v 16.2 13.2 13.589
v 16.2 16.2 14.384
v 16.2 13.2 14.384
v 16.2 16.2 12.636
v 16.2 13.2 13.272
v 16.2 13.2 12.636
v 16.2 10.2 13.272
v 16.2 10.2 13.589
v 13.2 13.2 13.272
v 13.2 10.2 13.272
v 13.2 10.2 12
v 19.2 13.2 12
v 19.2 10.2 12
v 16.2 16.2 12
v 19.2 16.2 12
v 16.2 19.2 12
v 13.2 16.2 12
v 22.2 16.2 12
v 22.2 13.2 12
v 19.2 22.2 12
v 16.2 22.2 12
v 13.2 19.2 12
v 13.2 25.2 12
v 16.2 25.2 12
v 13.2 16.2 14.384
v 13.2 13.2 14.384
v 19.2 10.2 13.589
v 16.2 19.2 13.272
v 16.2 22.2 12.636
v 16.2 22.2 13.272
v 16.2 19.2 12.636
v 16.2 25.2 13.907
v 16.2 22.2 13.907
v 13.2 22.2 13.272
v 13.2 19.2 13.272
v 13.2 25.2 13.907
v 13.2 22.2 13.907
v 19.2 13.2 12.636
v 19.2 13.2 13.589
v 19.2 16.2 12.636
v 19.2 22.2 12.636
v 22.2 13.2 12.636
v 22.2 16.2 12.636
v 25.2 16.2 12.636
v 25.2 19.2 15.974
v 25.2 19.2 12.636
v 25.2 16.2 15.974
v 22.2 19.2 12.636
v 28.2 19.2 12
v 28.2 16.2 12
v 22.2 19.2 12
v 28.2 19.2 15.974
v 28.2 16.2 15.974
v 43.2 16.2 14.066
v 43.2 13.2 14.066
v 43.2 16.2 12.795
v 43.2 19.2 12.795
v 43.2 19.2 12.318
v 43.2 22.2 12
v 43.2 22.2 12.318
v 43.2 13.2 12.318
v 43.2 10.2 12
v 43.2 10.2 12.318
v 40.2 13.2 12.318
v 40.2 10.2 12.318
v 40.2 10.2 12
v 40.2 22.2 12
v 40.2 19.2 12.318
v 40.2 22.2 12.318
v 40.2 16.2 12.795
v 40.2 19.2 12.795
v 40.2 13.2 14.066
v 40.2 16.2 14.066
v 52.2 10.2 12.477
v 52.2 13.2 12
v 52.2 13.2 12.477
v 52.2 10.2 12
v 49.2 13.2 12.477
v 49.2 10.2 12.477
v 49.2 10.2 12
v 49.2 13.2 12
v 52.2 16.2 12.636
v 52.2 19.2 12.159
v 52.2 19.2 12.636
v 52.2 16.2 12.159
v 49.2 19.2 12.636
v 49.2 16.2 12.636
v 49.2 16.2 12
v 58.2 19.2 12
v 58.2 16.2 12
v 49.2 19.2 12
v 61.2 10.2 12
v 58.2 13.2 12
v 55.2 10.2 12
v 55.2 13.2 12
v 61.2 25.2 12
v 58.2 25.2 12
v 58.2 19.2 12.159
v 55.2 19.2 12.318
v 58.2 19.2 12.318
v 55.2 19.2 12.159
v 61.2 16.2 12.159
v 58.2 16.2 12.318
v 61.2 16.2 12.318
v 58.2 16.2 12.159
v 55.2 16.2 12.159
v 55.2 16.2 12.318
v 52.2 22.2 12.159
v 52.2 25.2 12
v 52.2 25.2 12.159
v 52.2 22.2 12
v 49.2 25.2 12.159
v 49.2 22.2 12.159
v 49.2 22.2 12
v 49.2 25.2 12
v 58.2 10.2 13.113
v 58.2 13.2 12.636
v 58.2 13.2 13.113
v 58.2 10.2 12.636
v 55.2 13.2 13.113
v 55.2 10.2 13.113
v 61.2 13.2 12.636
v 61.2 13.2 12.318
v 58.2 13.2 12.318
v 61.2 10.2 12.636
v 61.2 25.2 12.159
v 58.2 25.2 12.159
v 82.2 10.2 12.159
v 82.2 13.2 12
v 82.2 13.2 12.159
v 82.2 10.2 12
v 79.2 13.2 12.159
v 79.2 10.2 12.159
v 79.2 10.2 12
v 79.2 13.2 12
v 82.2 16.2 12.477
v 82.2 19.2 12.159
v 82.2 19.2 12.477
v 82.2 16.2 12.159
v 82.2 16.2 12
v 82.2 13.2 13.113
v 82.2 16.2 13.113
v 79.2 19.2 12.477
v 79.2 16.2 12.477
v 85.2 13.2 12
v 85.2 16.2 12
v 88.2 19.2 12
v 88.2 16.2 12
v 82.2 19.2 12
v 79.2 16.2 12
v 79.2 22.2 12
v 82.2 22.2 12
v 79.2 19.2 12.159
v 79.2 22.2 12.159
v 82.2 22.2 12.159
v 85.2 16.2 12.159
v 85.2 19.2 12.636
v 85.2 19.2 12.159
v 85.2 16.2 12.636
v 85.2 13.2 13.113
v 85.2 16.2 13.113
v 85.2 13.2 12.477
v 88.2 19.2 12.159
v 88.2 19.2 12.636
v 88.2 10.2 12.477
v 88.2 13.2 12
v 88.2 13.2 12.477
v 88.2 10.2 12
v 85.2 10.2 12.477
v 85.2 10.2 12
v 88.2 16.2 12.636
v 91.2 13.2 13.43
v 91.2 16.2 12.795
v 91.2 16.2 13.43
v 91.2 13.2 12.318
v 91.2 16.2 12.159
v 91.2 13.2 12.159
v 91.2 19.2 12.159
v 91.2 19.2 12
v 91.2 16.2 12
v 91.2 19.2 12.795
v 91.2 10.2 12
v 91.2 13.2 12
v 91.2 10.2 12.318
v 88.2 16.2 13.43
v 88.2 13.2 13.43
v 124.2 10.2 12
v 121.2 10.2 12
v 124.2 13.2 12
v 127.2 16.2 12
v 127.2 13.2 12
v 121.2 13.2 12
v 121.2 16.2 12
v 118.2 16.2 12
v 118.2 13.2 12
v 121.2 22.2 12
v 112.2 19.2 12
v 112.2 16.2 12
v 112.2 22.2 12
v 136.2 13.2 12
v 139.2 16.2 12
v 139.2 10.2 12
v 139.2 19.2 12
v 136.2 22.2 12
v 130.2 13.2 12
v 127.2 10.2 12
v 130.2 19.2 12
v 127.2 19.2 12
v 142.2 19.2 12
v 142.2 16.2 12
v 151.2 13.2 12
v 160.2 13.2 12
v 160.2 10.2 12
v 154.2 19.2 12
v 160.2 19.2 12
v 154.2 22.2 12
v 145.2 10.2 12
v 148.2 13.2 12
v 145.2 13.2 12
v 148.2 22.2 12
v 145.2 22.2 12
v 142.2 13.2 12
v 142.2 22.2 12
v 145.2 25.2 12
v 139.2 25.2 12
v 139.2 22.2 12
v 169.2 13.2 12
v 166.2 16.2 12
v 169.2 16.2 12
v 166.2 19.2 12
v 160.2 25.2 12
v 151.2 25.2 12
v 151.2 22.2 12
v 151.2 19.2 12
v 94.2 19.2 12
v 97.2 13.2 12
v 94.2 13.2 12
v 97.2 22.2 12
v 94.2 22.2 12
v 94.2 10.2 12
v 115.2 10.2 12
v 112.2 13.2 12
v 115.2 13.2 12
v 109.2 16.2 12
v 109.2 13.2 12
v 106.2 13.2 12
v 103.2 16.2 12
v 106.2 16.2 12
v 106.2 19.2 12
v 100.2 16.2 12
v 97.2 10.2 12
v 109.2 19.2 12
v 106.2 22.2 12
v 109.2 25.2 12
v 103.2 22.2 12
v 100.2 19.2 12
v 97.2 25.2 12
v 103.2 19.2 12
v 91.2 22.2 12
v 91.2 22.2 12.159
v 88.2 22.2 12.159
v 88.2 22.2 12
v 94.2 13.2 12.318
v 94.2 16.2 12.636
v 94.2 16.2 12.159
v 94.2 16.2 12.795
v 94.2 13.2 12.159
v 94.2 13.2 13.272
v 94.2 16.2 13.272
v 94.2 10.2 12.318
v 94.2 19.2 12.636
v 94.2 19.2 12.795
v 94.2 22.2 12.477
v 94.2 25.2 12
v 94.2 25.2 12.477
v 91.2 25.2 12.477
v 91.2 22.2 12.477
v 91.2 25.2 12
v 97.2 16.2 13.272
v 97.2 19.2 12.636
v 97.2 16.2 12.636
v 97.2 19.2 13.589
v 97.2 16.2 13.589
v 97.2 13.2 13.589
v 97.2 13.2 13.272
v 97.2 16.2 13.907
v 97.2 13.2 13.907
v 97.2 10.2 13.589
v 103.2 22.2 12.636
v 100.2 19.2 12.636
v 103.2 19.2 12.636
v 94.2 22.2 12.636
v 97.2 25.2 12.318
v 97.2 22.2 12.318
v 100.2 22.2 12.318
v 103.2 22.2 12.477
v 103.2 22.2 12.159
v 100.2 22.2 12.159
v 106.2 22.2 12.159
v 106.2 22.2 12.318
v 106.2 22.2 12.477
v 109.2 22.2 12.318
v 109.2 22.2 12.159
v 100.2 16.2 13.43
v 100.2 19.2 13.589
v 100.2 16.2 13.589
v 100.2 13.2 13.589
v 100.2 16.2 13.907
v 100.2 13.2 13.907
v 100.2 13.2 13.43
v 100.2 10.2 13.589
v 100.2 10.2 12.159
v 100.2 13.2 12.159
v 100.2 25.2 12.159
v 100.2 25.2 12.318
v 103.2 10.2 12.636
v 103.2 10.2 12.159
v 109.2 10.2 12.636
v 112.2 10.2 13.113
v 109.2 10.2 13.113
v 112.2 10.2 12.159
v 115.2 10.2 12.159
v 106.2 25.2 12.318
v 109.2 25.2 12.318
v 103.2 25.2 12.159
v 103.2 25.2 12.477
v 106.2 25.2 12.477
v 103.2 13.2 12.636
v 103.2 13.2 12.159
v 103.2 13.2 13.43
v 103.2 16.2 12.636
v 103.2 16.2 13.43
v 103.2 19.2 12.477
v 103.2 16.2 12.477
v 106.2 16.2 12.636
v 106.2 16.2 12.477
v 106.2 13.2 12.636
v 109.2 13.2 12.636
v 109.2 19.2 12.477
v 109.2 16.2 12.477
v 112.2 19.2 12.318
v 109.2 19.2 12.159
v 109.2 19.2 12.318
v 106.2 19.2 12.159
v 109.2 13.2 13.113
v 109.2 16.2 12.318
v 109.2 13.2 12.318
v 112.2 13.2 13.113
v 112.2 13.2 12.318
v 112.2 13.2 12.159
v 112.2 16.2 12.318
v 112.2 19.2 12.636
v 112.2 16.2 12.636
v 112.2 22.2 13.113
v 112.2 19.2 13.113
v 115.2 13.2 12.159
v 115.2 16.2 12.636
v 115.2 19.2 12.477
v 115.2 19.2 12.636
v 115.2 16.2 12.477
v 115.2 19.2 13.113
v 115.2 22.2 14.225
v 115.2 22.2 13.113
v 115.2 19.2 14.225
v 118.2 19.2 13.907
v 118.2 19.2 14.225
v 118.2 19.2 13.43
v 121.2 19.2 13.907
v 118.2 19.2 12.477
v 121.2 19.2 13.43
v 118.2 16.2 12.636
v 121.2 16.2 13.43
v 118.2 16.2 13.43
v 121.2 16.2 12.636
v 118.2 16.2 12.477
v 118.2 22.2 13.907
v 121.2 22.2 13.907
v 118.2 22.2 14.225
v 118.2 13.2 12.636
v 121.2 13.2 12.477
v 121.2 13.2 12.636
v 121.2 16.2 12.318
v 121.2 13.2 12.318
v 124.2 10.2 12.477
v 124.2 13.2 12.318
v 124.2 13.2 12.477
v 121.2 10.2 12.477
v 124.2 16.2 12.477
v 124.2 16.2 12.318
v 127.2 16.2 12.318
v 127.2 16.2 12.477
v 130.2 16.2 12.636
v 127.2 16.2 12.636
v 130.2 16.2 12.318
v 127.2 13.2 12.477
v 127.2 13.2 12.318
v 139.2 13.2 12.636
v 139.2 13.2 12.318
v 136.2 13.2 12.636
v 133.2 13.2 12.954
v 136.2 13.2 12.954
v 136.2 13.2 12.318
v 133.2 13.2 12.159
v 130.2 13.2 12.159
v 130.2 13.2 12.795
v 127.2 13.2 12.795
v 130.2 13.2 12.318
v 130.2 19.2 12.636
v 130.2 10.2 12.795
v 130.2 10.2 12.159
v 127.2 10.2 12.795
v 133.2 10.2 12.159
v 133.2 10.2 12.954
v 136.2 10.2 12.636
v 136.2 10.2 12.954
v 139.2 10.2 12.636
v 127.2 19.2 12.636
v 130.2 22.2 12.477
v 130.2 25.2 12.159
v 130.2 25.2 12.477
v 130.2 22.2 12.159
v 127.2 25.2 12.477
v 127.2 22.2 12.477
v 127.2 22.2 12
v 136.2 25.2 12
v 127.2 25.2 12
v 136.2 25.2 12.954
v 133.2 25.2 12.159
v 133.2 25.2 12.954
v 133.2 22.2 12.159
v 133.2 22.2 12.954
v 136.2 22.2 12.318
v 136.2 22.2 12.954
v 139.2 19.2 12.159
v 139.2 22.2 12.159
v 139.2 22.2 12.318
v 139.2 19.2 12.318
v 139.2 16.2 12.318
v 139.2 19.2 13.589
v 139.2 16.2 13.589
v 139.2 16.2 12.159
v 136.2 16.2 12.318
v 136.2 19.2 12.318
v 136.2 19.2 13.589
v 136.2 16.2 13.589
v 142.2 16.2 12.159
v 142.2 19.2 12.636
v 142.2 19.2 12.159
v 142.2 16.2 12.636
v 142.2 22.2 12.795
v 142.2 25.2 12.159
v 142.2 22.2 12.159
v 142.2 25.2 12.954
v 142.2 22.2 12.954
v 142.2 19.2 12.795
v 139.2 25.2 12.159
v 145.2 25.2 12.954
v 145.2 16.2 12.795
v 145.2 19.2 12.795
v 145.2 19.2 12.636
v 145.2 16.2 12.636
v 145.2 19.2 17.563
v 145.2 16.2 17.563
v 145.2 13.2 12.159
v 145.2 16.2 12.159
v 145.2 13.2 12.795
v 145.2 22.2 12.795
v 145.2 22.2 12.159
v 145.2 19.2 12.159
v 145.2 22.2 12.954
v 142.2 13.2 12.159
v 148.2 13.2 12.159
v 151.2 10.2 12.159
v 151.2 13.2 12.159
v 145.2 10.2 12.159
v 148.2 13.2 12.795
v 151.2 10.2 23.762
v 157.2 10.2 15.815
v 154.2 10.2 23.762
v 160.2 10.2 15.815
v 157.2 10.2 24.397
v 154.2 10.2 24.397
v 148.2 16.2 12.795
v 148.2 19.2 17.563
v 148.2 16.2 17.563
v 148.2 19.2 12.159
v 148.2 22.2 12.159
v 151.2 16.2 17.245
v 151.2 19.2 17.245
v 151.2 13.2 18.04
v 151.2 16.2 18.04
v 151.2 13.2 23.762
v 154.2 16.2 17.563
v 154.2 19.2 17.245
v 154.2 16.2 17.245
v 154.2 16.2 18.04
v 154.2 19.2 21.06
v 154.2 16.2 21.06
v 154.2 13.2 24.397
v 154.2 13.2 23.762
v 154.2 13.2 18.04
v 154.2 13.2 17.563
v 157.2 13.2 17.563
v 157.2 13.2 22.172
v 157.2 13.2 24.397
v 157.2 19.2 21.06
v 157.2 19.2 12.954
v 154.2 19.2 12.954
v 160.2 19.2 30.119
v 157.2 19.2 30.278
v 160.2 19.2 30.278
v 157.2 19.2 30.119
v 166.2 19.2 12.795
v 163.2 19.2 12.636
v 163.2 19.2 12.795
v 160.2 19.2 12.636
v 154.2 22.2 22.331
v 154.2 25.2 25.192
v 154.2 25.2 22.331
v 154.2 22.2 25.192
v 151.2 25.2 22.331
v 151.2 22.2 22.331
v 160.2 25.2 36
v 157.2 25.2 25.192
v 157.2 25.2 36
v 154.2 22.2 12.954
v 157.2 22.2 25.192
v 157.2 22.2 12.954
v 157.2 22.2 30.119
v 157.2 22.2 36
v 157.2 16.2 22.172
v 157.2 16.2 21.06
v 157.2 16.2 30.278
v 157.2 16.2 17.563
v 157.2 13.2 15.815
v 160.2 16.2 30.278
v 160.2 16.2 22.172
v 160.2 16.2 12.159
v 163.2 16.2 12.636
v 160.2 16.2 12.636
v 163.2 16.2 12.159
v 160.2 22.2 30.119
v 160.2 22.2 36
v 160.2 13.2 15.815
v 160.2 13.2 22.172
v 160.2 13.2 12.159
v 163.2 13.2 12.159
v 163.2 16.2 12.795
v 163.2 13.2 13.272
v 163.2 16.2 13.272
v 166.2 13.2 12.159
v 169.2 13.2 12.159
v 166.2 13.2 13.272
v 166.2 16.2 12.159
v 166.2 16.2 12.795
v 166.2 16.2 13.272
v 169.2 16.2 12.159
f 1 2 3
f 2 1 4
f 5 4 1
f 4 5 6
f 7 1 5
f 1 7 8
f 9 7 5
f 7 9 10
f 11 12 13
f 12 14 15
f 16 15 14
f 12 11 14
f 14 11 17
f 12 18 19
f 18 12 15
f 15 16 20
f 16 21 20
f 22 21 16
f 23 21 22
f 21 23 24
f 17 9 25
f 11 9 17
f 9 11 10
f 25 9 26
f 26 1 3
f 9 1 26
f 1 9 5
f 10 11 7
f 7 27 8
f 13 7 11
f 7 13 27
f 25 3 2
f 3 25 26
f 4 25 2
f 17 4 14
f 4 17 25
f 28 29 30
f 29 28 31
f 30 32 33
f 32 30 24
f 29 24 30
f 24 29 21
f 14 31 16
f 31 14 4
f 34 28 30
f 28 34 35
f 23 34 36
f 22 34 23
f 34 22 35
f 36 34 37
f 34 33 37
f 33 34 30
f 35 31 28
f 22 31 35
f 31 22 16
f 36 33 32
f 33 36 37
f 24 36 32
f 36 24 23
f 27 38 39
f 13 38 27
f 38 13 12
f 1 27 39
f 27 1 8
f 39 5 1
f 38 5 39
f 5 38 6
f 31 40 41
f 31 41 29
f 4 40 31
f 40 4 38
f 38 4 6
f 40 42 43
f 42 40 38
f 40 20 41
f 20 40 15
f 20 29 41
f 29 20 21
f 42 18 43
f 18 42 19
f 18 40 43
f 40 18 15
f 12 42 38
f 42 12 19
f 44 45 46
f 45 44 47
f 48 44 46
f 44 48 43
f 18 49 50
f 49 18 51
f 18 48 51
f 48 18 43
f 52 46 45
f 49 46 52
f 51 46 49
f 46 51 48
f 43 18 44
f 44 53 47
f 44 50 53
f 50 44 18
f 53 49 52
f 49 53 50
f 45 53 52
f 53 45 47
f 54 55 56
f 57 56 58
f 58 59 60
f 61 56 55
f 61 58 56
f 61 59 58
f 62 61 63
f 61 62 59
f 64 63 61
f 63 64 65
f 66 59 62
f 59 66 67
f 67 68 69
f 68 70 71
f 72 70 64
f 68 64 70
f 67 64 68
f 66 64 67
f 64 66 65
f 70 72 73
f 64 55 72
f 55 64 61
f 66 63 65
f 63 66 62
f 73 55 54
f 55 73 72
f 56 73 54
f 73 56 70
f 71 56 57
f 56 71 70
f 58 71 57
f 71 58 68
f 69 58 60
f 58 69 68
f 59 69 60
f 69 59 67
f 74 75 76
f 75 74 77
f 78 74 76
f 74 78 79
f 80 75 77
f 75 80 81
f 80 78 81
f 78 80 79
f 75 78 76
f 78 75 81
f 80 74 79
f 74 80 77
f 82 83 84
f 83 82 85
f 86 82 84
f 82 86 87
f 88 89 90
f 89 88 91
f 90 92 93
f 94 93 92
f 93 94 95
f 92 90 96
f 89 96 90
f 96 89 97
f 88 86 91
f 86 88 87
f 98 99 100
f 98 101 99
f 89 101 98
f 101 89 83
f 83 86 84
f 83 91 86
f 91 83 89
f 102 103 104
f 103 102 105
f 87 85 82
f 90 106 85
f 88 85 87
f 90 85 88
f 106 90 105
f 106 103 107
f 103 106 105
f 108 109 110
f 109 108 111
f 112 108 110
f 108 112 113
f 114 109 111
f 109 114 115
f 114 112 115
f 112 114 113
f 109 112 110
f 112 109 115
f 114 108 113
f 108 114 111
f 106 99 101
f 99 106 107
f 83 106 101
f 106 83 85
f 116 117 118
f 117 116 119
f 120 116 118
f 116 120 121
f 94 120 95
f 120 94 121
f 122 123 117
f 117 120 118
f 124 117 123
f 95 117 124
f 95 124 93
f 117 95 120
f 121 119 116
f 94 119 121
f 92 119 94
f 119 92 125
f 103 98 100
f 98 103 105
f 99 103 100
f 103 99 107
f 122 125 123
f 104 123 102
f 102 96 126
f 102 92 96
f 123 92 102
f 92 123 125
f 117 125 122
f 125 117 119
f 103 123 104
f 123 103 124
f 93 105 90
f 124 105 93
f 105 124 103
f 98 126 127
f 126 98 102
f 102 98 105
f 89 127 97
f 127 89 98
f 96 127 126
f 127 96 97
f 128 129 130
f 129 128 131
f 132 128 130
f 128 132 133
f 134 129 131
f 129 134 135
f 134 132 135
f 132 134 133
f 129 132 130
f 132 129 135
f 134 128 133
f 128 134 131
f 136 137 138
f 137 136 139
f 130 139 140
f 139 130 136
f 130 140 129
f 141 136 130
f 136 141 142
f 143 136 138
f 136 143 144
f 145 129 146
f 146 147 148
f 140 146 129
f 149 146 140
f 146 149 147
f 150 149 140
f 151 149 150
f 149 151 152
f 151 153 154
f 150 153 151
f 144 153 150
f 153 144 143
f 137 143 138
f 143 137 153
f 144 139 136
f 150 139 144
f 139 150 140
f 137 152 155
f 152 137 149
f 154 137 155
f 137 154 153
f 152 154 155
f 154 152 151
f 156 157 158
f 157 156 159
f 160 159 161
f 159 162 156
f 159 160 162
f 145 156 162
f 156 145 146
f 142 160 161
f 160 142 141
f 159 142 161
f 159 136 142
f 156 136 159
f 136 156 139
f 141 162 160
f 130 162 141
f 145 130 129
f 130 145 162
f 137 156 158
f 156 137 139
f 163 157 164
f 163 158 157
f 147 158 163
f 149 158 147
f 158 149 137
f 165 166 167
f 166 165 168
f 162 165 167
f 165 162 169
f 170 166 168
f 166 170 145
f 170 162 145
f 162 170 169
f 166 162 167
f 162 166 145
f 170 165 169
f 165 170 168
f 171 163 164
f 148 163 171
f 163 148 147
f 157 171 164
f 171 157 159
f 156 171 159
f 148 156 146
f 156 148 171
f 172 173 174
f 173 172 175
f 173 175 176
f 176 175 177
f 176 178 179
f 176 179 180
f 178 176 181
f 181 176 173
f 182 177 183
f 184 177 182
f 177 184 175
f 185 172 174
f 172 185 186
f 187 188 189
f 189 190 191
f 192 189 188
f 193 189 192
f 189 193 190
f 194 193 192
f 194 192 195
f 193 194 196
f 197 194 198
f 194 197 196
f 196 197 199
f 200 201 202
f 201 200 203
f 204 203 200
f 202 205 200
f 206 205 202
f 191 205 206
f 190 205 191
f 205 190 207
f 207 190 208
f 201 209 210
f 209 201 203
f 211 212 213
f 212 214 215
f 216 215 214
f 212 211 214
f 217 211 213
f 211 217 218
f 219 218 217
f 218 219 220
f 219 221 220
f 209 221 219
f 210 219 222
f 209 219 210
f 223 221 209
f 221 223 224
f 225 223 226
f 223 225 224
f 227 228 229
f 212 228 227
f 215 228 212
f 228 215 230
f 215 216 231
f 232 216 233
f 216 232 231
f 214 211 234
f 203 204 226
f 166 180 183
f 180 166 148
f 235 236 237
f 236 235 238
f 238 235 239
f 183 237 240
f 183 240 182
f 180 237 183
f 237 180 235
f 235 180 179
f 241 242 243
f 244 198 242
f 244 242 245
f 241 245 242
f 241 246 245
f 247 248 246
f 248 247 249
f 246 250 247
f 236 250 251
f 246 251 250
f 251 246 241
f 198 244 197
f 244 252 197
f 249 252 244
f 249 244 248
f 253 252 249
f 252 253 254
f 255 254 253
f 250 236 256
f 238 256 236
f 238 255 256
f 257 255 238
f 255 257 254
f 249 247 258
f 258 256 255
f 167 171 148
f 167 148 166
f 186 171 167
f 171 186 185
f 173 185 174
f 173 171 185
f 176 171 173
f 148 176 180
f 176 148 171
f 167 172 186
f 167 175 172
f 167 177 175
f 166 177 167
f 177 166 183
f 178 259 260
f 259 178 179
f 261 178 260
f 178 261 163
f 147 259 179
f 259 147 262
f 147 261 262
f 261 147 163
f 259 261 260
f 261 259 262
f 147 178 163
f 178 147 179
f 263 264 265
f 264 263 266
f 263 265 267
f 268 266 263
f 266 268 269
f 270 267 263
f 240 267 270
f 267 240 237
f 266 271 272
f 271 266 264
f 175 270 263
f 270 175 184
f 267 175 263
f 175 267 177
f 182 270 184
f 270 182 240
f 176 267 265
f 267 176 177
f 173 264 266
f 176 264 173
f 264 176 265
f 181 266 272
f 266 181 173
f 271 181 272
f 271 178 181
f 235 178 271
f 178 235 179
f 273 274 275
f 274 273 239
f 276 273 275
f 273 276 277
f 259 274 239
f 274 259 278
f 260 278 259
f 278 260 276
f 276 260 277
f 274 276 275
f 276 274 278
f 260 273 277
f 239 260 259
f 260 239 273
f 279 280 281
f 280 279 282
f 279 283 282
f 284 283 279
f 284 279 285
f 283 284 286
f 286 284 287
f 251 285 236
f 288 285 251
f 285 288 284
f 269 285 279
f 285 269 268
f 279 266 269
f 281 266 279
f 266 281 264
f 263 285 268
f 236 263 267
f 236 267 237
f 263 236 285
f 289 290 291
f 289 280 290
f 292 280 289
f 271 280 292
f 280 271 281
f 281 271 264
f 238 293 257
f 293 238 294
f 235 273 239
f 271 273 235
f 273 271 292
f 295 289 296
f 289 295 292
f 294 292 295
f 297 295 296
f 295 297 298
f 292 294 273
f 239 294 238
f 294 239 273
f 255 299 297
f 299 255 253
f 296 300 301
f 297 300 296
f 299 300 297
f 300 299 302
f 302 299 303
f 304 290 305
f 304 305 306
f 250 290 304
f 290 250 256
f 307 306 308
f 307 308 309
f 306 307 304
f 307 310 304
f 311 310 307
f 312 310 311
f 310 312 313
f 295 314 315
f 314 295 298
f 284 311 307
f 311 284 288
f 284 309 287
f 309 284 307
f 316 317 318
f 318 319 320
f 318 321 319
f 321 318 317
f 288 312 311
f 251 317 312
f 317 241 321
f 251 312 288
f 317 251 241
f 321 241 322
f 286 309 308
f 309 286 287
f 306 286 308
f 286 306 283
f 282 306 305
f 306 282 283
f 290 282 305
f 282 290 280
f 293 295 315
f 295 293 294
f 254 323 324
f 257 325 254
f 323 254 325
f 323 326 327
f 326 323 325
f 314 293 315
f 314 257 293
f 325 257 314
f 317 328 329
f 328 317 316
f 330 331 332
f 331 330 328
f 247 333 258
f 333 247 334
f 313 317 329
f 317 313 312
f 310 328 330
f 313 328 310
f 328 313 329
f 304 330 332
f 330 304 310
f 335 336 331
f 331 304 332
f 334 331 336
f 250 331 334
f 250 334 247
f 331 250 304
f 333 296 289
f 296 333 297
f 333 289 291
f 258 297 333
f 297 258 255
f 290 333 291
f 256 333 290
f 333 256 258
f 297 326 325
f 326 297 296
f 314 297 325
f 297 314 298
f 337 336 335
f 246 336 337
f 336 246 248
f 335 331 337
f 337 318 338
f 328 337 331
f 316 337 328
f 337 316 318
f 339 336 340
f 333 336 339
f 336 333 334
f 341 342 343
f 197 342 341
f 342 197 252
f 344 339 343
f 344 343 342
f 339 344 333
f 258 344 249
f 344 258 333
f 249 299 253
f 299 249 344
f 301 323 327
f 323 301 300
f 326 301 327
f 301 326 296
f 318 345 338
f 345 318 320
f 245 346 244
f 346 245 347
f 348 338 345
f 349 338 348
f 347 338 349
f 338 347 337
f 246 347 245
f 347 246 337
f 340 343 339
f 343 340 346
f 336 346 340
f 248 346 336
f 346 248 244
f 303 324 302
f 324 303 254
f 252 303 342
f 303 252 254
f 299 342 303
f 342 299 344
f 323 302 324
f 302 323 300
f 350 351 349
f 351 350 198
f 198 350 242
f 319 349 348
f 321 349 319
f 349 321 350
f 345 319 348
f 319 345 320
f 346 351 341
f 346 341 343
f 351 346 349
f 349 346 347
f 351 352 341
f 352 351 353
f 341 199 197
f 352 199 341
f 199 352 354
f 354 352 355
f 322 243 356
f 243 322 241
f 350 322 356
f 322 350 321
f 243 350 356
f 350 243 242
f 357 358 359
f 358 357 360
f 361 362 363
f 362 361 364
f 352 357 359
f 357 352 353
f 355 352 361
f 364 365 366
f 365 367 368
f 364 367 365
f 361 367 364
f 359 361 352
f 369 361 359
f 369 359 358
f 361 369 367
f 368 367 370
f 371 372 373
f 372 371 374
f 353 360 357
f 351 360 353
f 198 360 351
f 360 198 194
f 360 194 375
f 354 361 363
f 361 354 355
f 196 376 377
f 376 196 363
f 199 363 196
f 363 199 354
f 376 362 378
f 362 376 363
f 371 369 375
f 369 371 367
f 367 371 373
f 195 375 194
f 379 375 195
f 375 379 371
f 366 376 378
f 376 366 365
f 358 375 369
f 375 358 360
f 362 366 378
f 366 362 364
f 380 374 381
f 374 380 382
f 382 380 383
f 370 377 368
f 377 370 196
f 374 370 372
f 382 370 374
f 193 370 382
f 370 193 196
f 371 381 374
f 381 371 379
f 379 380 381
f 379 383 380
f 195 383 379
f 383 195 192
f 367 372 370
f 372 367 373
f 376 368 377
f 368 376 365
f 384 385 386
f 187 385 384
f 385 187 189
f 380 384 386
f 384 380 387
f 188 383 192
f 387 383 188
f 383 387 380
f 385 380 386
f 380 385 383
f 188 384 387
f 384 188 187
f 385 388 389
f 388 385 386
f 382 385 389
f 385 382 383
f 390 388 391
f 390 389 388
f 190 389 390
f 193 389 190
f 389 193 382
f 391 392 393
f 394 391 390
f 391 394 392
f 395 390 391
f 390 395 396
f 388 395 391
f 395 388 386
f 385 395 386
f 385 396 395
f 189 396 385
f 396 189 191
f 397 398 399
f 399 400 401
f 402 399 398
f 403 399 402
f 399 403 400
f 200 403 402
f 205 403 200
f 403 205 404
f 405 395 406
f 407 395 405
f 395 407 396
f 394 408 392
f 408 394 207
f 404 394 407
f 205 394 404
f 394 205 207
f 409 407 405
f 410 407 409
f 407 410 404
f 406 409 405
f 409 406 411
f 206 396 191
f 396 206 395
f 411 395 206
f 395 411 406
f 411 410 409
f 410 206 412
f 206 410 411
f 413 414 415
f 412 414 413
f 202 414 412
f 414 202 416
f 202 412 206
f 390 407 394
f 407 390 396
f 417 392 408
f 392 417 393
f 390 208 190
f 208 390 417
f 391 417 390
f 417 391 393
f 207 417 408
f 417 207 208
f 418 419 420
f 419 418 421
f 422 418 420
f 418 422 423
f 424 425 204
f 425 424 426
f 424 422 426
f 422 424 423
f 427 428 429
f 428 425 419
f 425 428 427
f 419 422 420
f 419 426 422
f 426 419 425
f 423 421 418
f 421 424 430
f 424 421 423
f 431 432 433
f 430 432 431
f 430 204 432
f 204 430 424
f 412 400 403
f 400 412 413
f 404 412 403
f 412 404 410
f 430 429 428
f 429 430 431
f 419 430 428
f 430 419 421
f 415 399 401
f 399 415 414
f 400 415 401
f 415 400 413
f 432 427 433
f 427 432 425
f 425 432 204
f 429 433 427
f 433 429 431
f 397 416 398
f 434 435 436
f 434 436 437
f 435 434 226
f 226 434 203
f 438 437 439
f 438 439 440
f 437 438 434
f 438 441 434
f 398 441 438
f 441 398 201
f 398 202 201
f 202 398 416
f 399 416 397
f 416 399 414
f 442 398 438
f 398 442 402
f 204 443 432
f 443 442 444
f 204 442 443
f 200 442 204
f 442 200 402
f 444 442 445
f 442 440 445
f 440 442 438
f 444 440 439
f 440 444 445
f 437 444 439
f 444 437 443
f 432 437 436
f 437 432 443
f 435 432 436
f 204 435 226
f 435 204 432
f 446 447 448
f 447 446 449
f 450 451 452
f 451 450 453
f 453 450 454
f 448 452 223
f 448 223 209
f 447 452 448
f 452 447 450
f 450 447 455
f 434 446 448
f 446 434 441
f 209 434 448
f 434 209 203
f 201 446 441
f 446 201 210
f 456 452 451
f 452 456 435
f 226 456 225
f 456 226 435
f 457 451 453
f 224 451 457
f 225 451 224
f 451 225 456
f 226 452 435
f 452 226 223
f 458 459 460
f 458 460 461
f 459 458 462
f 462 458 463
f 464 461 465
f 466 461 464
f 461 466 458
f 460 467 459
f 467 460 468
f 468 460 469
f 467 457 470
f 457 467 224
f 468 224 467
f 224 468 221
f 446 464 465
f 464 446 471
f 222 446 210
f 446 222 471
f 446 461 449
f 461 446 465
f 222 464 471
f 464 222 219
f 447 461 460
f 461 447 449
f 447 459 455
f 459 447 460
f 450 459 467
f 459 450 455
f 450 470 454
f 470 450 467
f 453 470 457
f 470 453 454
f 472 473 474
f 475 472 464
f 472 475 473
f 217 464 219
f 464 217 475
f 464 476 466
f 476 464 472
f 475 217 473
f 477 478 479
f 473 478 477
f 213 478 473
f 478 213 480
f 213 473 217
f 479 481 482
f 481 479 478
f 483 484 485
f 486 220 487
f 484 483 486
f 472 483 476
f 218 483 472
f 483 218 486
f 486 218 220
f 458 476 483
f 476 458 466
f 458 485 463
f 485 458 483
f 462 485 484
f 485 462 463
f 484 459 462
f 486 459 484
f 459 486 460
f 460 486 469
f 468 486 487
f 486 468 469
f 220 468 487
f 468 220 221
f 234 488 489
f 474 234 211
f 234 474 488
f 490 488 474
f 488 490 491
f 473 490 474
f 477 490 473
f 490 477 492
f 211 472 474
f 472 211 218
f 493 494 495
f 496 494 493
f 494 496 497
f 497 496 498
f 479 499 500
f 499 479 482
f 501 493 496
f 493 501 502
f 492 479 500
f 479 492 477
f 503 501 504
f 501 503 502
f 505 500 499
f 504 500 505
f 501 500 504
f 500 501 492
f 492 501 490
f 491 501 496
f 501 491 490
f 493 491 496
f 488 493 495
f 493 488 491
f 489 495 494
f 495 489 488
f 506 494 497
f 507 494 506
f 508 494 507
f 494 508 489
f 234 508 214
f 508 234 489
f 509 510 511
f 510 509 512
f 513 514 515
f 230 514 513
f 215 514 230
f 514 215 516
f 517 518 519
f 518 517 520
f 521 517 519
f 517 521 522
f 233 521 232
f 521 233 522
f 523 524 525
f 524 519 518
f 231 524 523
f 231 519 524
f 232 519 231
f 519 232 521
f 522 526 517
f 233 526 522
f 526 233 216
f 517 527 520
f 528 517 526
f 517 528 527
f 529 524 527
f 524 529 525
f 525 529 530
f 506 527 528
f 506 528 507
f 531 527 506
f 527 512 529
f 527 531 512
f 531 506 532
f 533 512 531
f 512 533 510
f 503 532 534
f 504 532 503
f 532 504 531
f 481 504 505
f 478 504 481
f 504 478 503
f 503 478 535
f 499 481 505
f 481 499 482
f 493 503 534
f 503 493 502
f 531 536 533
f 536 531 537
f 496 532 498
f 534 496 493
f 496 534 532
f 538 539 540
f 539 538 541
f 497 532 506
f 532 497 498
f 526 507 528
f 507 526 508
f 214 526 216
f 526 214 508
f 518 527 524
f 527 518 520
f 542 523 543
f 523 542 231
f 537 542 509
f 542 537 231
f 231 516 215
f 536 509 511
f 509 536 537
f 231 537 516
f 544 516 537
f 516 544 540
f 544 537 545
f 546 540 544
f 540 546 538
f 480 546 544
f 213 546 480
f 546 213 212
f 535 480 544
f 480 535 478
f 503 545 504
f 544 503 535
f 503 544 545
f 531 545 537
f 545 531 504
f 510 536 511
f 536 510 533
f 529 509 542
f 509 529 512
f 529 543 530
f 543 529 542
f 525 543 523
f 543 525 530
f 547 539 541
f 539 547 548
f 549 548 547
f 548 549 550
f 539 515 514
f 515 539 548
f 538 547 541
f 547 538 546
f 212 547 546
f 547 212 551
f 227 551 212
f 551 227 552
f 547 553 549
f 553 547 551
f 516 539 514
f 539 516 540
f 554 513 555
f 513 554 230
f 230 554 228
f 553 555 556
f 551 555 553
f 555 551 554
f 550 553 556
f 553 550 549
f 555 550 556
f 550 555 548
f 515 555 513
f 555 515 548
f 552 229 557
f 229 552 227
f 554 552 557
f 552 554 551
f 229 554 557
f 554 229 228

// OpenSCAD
union() {
	translate(v = [13.200000000000001, 10.200000000000001, 12.0]) {
		cube(size = [3.0, 3.0, 1.271523178807947]);
	}
	translate(v = [13.200000000000001, 13.200000000000001, 12.0]) {
		cube(size = [3.0, 3.0, 2.384105960264901]);
	}
	translate(v = [13.200000000000001, 19.200000000000003, 12.0]) {
		cube(size = [3.0, 3.0, 1.271523178807947]);
	}
	translate(v = [13.200000000000001, 22.200000000000003, 12.0]) {
		cube(size = [3.0, 3.0, 1.9072847682119205]);
	}
	translate(v = [16.200000000000003, 10.200000000000001, 12.0]) {
		cube(size = [3.0, 3.0, 1.5894039735099337]);
	}
	translate(v = [16.200000000000003, 13.200000000000001, 12.0]) {
		cube(size = [3.0, 3.0, 0.6357615894039735]);
	}
	translate(v = [16.200000000000003, 16.200000000000003, 12.0]) {
		cube(size = [3.0, 3.0, 0.6357615894039735]);
	}
	translate(v = [16.200000000000003, 19.200000000000003, 12.0]) {
		cube(size = [3.0, 3.0, 0.6357615894039735]);
	}
	translate(v = [19.200000000000003, 13.200000000000001, 12.0]) {
		cube(size = [3.0, 3.0, 0.6357615894039735]);
	}
	translate(v = [22.200000000000003, 16.200000000000003, 12.0]) {
		cube(size = [3.0, 3.0, 0.6357615894039735]);
	}
	translate(v = [25.200000000000003, 16.200000000000003, 12.0]) {
		cube(size = [3.0, 3.0, 3.9735099337748343]);
	}
	translate(v = [40.2, 10.200000000000001, 12.0]) {
		cube(size = [3.0, 3.0, 0.31788079470198677]);
	}
	translate(v = [40.2, 13.200000000000001, 12.0]) {
		cube(size = [3.0, 3.0, 2.066225165562914]);
	}
	translate(v = [40.2, 16.200000000000003, 12.0]) {
		cube(size = [3.0, 3.0, 0.7947019867549668]);
	}
	translate(v = [40.2, 19.200000000000003, 12.0]) {
		cube(size = [3.0, 3.0, 0.31788079470198677]);
	}
	translate(v = [49.2, 10.200000000000001, 12.0]) {
		cube(size = [3.0, 3.0, 0.4768211920529801]);
	}
	translate(v = [49.2, 16.200000000000003, 12.0]) {
		cube(size = [3.0, 3.0, 0.6357615894039735]);
	}
	translate(v = [49.2, 22.200000000000003, 12.0]) {
		cube(size = [3.0, 3.0, 0.15894039735099338]);
	}
	translate(v = [52.2, 16.200000000000003, 12.0]) {
		cube(size = [3.0, 3.0, 0.15894039735099338]);
	}
	translate(v = [55.2, 10.200000000000001, 12.0]) {
		cube(size = [3.0, 3.0, 1.1125827814569536]);
	}
	translate(v = [55.2, 16.200000000000003, 12.0]) {
		cube(size = [3.0, 3.0, 0.31788079470198677]);
	}
	translate(v = [58.2, 10.200000000000001, 12.0]) {
		cube(size = [3.0, 3.0, 0.6357615894039735]);
	}
	translate(v = [58.2, 13.200000000000001, 12.0]) {
		cube(size = [3.0, 3.0, 0.31788079470198677]);
	}
	translate(v = [58.2, 16.200000000000003, 12.0]) {
		cube(size = [3.0, 3.0, 0.15894039735099338]);
	}
	translate(v = [58.2, 19.200000000000003, 12.0]) {
		cube(size = [3.0, 3.0, 0.15894039735099338]);
	}
	translate(v = [58.2, 22.200000000000003, 12.0]) {
		cube(size = [3.0, 3.0, 0.15894039735099338]);
	}
	translate(v = [79.2, 10.200000000000001, 12.0]) {
		cube(size = [3.0, 3.0, 0.15894039735099338]);
	}
	translate(v = [79.2, 16.200000000000003, 12.0]) {
		cube(size = [3.0, 3.0, 0.4768211920529801]);
	}
	translate(v = [79.2, 19.200000000000003, 12.0]) {
		cube(size = [3.0, 3.0, 0.15894039735099338]);
	}
	translate(v = [82.2, 13.200000000000001, 12.0]) {
		cube(size = [3.0, 3.0, 1.1125827814569536]);
	}
	translate(v = [82.2, 16.200000000000003, 12.0]) {
		cube(size = [3.0, 3.0, 0.15894039735099338]);
	}
	translate(v = [85.2, 10.200000000000001, 12.0]) {
		cube(size = [3.0, 3.0, 0.4768211920529801]);
	}
	translate(v = [85.2, 16.200000000000003, 12.0]) {
		cube(size = [3.0, 3.0, 0.6357615894039735]);
	}
	translate(v = [88.2, 13.200000000000001, 12.0]) {
		cube(size = [3.0, 3.0, 1.4304635761589404]);
	}
	translate(v = [88.2, 19.200000000000003, 12.0]) {
		cube(size = [3.0, 3.0, 0.15894039735099338]);
	}
	translate(v = [91.2, 10.200000000000001, 12.0]) {
		cube(size = [3.0, 3.0, 0.31788079470198677]);
	}
	translate(v = [91.2, 13.200000000000001, 12.0]) {
		cube(size = [3.0, 3.0, 0.15894039735099338]);
	}
	translate(v = [91.2, 16.200000000000003, 12.0]) {
		cube(size = [3.0, 3.0, 0.7947019867549668]);
	}
	translate(v = [91.2, 22.200000000000003, 12.0]) {
		cube(size = [3.0, 3.0, 0.4768211920529801]);
	}
	translate(v = [94.2, 13.200000000000001, 12.0]) {
		cube(size = [3.0, 3.0, 1.271523178807947]);
	}
	translate(v = [94.2, 16.200000000000003, 12.0]) {
		cube(size = [3.0, 3.0, 0.6357615894039735]);
	}
	translate(v = [94.2, 19.200000000000003, 12.0]) {
		cube(size = [3.0, 3.0, 0.6357615894039735]);
	}
	translate(v = [97.2, 10.200000000000001, 12.0]) {
		cube(size = [3.0, 3.0, 1.5894039735099337]);
	}
	translate(v = [97.2, 13.200000000000001, 12.0]) {
		cube(size = [3.0, 3.0, 1.9072847682119205]);
	}
	translate(v = [97.2, 16.200000000000003, 12.0]) {
		cube(size = [3.0, 3.0, 1.5894039735099337]);
	}
	translate(v = [97.2, 19.200000000000003, 12.0]) {
		cube(size = [3.0, 3.0, 0.6357615894039735]);
	}
	translate(v = [97.2, 22.200000000000003, 12.0]) {
		cube(size = [3.0, 3.0, 0.31788079470198677]);
	}
	translate(v = [100.2, 10.200000000000001, 12.0]) {
		cube(size = [3.0, 3.0, 0.15894039735099338]);
	}
	translate(v = [100.2, 13.200000000000001, 12.0]) {
		cube(size = [3.0, 3.0, 1.4304635761589404]);
	}
	translate(v = [100.2, 19.200000000000003, 12.0]) {
		cube(size = [3.0, 3.0, 0.6357615894039735]);
	}
	translate(v = [100.2, 22.200000000000003, 12.0]) {
		cube(size = [3.0, 3.0, 0.15894039735099338]);
	}
	translate(v = [103.2, 10.200000000000001, 12.0]) {
		cube(size = [3.0, 3.0, 0.6357615894039735]);
	}
	translate(v = [103.2, 13.200000000000001, 12.0]) {
		cube(size = [3.0, 3.0, 0.6357615894039735]);
	}
	translate(v = [103.2, 16.200000000000003, 12.0]) {
		cube(size = [3.0, 3.0, 0.4768211920529801]);
	}
	translate(v = [103.2, 22.200000000000003, 12.0]) {
		cube(size = [3.0, 3.0, 0.4768211920529801]);
	}
	translate(v = [106.2, 10.200000000000001, 12.0]) {
		cube(size = [3.0, 3.0, 0.6357615894039735]);
	}
	translate(v = [106.2, 16.200000000000003, 12.0]) {
		cube(size = [3.0, 3.0, 0.4768211920529801]);
	}
	translate(v = [106.2, 19.200000000000003, 12.0]) {
		cube(size = [3.0, 3.0, 0.15894039735099338]);
	}
	translate(v = [106.2, 22.200000000000003, 12.0]) {
		cube(size = [3.0, 3.0, 0.31788079470198677]);
	}
	translate(v = [109.2, 10.200000000000001, 12.0]) {
		cube(size = [3.0, 3.0, 1.1125827814569536]);
	}
	translate(v = [109.2, 13.200000000000001, 12.0]) {
		cube(size = [3.0, 3.0, 0.31788079470198677]);
	}
	translate(v = [109.2, 16.200000000000003, 12.0]) {
		cube(size = [3.0, 3.0, 0.31788079470198677]);
	}
	translate(v = [112.2, 10.200000000000001, 12.0]) {
		cube(size = [3.0, 3.0, 0.15894039735099338]);
	}
	translate(v = [112.2, 16.200000000000003, 12.0]) {
		cube(size = [3.0, 3.0, 0.6357615894039735]);
	}
	translate(v = [112.2, 19.200000000000003, 12.0]) {
		cube(size = [3.0, 3.0, 1.1125827814569536]);
	}
	translate(v = [115.2, 16.200000000000003, 12.0]) {
		cube(size = [3.0, 3.0, 0.4768211920529801]);
	}
	translate(v = [115.2, 19.200000000000003, 12.0]) {
		cube(size = [3.0, 3.0, 2.225165562913907]);
	}
	translate(v = [118.2, 13.200000000000001, 12.0]) {
		cube(size = [3.0, 3.0, 0.6357615894039735]);
	}
	translate(v = [118.2, 16.200000000000003, 12.0]) {
		cube(size = [3.0, 3.0, 1.4304635761589404]);
	}
	translate(v = [118.2, 19.200000000000003, 12.0]) {
		cube(size = [3.0, 3.0, 1.9072847682119205]);
	}
	translate(v = [121.2, 10.200000000000001, 12.0]) {
		cube(size = [3.0, 3.0, 0.4768211920529801]);
	}
	translate(v = [121.2, 13.200000000000001, 12.0]) {
		cube(size = [3.0, 3.0, 0.31788079470198677]);
	}
	translate(v = [124.2, 13.200000000000001, 12.0]) {
		cube(size = [3.0, 3.0, 0.4768211920529801]);
	}
	translate(v = [127.2, 10.200000000000001, 12.0]) {
		cube(size = [3.0, 3.0, 0.7947019867549668]);
	}
	translate(v = [127.2, 13.200000000000001, 12.0]) {
		cube(size = [3.0, 3.0, 0.31788079470198677]);
	}
	translate(v = [127.2, 16.200000000000003, 12.0]) {
		cube(size = [3.0, 3.0, 0.6357615894039735]);
	}
	translate(v = [127.2, 22.200000000000003, 12.0]) {
		cube(size = [3.0, 3.0, 0.4768211920529801]);
	}
	translate(v = [130.2, 10.200000000000001, 12.0]) {
		cube(size = [3.0, 3.0, 0.15894039735099338]);
	}
	translate(v = [130.2, 22.200000000000003, 12.0]) {
		cube(size = [3.0, 3.0, 0.15894039735099338]);
	}
	translate(v = [133.2, 10.200000000000001, 12.0]) {
		cube(size = [3.0, 3.0, 0.9536423841059603]);
	}
	translate(v = [133.2, 22.200000000000003, 12.0]) {
		cube(size = [3.0, 3.0, 0.9536423841059603]);
	}
	translate(v = [136.2, 10.200000000000001, 12.0]) {
		cube(size = [3.0, 3.0, 0.6357615894039735]);
	}
	translate(v = [136.2, 13.200000000000001, 12.0]) {
		cube(size = [3.0, 3.0, 0.31788079470198677]);
	}
	translate(v = [136.2, 16.200000000000003, 12.0]) {
		cube(size = [3.0, 3.0, 1.5894039735099337]);
	}
	translate(v = [136.2, 19.200000000000003, 12.0]) {
		cube(size = [3.0, 3.0, 0.31788079470198677]);
	}
	translate(v = [139.2, 16.200000000000003, 12.0]) {
		cube(size = [3.0, 3.0, 0.15894039735099338]);
	}
	translate(v = [139.2, 22.200000000000003, 12.0]) {
		cube(size = [3.0, 3.0, 0.15894039735099338]);
	}
	translate(v = [142.2, 13.200000000000001, 12.0]) {
		cube(size = [3.0, 3.0, 0.15894039735099338]);
	}
	translate(v = [142.2, 16.200000000000003, 12.0]) {
		cube(size = [3.0, 3.0, 0.6357615894039735]);
	}
	translate(v = [142.2, 19.200000000000003, 12.0]) {
		cube(size = [3.0, 3.0, 0.7947019867549668]);
	}
	translate(v = [142.2, 22.200000000000003, 12.0]) {
		cube(size = [3.0, 3.0, 0.9536423841059603]);
	}
	translate(v = [145.2, 10.200000000000001, 12.0]) {
		cube(size = [3.0, 3.0, 0.15894039735099338]);
	}
	translate(v = [145.2, 13.200000000000001, 12.0]) {
		cube(size = [3.0, 3.0, 0.7947019867549668]);
	}
	translate(v = [145.2, 16.200000000000003, 12.0]) {
		cube(size = [3.0, 3.0, 5.562913907284768]);
	}
	translate(v = [145.2, 19.200000000000003, 12.0]) {
		cube(size = [3.0, 3.0, 0.15894039735099338]);
	}
	translate(v = [148.2, 10.200000000000001, 12.0]) {
		cube(size = [3.0, 3.0, 0.15894039735099338]);
	}
	translate(v = [151.2, 10.200000000000001, 12.0]) {
		cube(size = [3.0, 3.0, 11.76158940397351]);
	}
	translate(v = [151.2, 13.200000000000001, 12.0]) {
		cube(size = [3.0, 3.0, 6.039735099337748]);
	}
	translate(v = [151.2, 16.200000000000003, 12.0]) {
		cube(size = [3.0, 3.0, 5.245033112582782]);
	}
	translate(v = [151.2, 22.200000000000003, 12.0]) {
		cube(size = [3.0, 3.0, 10.331125827814569]);
	}
	translate(v = [154.2, 10.200000000000001, 12.0]) {
		cube(size = [3.0, 3.0, 12.397350993377483]);
	}
	translate(v = [154.2, 13.200000000000001, 12.0]) {
		cube(size = [3.0, 3.0, 5.562913907284768]);
	}
	translate(v = [154.2, 16.200000000000003, 12.0]) {
		cube(size = [3.0, 3.0, 9.059602649006623]);
	}
	translate(v = [154.2, 19.200000000000003, 12.0]) {
		cube(size = [3.0, 3.0, 0.9536423841059603]);
	}
	translate(v = [154.2, 22.200000000000003, 12.0]) {
		cube(size = [3.0, 3.0, 13.19205298013245]);
	}
	translate(v = [157.2, 10.200000000000001, 12.0]) {
		cube(size = [3.0, 3.0, 3.814569536423841]);
	}
	translate(v = [157.2, 13.200000000000001, 12.0]) {
		cube(size = [3.0, 3.0, 10.172185430463577]);
	}
	translate(v = [157.2, 16.200000000000003, 12.0]) {
		cube(size = [3.0, 3.0, 18.278145695364238]);
	}
	translate(v = [157.2, 19.200000000000003, 12.0]) {
		cube(size = [3.0, 3.0, 18.119205298013245]);
	}
	translate(v = [157.2, 22.200000000000003, 12.0]) {
		cube(size = [3.0, 3.0, 24.0]);
	}
	translate(v = [160.2, 13.200000000000001, 12.0]) {
		cube(size = [3.0, 3.0, 0.15894039735099338]);
	}
	translate(v = [160.2, 16.200000000000003, 12.0]) {
		cube(size = [3.0, 3.0, 0.6357615894039735]);
	}
	translate(v = [163.2, 13.200000000000001, 12.0]) {
		cube(size = [3.0, 3.0, 1.271523178807947]);
	}
	translate(v = [163.2, 16.200000000000003, 12.0]) {
		cube(size = [3.0, 3.0, 0.7947019867549668]);
	}
	translate(v = [166.2, 13.200000000000001, 12.0]) {
		cube(size = [3.0, 3.0, 0.15894039735099338]);
	}
}
